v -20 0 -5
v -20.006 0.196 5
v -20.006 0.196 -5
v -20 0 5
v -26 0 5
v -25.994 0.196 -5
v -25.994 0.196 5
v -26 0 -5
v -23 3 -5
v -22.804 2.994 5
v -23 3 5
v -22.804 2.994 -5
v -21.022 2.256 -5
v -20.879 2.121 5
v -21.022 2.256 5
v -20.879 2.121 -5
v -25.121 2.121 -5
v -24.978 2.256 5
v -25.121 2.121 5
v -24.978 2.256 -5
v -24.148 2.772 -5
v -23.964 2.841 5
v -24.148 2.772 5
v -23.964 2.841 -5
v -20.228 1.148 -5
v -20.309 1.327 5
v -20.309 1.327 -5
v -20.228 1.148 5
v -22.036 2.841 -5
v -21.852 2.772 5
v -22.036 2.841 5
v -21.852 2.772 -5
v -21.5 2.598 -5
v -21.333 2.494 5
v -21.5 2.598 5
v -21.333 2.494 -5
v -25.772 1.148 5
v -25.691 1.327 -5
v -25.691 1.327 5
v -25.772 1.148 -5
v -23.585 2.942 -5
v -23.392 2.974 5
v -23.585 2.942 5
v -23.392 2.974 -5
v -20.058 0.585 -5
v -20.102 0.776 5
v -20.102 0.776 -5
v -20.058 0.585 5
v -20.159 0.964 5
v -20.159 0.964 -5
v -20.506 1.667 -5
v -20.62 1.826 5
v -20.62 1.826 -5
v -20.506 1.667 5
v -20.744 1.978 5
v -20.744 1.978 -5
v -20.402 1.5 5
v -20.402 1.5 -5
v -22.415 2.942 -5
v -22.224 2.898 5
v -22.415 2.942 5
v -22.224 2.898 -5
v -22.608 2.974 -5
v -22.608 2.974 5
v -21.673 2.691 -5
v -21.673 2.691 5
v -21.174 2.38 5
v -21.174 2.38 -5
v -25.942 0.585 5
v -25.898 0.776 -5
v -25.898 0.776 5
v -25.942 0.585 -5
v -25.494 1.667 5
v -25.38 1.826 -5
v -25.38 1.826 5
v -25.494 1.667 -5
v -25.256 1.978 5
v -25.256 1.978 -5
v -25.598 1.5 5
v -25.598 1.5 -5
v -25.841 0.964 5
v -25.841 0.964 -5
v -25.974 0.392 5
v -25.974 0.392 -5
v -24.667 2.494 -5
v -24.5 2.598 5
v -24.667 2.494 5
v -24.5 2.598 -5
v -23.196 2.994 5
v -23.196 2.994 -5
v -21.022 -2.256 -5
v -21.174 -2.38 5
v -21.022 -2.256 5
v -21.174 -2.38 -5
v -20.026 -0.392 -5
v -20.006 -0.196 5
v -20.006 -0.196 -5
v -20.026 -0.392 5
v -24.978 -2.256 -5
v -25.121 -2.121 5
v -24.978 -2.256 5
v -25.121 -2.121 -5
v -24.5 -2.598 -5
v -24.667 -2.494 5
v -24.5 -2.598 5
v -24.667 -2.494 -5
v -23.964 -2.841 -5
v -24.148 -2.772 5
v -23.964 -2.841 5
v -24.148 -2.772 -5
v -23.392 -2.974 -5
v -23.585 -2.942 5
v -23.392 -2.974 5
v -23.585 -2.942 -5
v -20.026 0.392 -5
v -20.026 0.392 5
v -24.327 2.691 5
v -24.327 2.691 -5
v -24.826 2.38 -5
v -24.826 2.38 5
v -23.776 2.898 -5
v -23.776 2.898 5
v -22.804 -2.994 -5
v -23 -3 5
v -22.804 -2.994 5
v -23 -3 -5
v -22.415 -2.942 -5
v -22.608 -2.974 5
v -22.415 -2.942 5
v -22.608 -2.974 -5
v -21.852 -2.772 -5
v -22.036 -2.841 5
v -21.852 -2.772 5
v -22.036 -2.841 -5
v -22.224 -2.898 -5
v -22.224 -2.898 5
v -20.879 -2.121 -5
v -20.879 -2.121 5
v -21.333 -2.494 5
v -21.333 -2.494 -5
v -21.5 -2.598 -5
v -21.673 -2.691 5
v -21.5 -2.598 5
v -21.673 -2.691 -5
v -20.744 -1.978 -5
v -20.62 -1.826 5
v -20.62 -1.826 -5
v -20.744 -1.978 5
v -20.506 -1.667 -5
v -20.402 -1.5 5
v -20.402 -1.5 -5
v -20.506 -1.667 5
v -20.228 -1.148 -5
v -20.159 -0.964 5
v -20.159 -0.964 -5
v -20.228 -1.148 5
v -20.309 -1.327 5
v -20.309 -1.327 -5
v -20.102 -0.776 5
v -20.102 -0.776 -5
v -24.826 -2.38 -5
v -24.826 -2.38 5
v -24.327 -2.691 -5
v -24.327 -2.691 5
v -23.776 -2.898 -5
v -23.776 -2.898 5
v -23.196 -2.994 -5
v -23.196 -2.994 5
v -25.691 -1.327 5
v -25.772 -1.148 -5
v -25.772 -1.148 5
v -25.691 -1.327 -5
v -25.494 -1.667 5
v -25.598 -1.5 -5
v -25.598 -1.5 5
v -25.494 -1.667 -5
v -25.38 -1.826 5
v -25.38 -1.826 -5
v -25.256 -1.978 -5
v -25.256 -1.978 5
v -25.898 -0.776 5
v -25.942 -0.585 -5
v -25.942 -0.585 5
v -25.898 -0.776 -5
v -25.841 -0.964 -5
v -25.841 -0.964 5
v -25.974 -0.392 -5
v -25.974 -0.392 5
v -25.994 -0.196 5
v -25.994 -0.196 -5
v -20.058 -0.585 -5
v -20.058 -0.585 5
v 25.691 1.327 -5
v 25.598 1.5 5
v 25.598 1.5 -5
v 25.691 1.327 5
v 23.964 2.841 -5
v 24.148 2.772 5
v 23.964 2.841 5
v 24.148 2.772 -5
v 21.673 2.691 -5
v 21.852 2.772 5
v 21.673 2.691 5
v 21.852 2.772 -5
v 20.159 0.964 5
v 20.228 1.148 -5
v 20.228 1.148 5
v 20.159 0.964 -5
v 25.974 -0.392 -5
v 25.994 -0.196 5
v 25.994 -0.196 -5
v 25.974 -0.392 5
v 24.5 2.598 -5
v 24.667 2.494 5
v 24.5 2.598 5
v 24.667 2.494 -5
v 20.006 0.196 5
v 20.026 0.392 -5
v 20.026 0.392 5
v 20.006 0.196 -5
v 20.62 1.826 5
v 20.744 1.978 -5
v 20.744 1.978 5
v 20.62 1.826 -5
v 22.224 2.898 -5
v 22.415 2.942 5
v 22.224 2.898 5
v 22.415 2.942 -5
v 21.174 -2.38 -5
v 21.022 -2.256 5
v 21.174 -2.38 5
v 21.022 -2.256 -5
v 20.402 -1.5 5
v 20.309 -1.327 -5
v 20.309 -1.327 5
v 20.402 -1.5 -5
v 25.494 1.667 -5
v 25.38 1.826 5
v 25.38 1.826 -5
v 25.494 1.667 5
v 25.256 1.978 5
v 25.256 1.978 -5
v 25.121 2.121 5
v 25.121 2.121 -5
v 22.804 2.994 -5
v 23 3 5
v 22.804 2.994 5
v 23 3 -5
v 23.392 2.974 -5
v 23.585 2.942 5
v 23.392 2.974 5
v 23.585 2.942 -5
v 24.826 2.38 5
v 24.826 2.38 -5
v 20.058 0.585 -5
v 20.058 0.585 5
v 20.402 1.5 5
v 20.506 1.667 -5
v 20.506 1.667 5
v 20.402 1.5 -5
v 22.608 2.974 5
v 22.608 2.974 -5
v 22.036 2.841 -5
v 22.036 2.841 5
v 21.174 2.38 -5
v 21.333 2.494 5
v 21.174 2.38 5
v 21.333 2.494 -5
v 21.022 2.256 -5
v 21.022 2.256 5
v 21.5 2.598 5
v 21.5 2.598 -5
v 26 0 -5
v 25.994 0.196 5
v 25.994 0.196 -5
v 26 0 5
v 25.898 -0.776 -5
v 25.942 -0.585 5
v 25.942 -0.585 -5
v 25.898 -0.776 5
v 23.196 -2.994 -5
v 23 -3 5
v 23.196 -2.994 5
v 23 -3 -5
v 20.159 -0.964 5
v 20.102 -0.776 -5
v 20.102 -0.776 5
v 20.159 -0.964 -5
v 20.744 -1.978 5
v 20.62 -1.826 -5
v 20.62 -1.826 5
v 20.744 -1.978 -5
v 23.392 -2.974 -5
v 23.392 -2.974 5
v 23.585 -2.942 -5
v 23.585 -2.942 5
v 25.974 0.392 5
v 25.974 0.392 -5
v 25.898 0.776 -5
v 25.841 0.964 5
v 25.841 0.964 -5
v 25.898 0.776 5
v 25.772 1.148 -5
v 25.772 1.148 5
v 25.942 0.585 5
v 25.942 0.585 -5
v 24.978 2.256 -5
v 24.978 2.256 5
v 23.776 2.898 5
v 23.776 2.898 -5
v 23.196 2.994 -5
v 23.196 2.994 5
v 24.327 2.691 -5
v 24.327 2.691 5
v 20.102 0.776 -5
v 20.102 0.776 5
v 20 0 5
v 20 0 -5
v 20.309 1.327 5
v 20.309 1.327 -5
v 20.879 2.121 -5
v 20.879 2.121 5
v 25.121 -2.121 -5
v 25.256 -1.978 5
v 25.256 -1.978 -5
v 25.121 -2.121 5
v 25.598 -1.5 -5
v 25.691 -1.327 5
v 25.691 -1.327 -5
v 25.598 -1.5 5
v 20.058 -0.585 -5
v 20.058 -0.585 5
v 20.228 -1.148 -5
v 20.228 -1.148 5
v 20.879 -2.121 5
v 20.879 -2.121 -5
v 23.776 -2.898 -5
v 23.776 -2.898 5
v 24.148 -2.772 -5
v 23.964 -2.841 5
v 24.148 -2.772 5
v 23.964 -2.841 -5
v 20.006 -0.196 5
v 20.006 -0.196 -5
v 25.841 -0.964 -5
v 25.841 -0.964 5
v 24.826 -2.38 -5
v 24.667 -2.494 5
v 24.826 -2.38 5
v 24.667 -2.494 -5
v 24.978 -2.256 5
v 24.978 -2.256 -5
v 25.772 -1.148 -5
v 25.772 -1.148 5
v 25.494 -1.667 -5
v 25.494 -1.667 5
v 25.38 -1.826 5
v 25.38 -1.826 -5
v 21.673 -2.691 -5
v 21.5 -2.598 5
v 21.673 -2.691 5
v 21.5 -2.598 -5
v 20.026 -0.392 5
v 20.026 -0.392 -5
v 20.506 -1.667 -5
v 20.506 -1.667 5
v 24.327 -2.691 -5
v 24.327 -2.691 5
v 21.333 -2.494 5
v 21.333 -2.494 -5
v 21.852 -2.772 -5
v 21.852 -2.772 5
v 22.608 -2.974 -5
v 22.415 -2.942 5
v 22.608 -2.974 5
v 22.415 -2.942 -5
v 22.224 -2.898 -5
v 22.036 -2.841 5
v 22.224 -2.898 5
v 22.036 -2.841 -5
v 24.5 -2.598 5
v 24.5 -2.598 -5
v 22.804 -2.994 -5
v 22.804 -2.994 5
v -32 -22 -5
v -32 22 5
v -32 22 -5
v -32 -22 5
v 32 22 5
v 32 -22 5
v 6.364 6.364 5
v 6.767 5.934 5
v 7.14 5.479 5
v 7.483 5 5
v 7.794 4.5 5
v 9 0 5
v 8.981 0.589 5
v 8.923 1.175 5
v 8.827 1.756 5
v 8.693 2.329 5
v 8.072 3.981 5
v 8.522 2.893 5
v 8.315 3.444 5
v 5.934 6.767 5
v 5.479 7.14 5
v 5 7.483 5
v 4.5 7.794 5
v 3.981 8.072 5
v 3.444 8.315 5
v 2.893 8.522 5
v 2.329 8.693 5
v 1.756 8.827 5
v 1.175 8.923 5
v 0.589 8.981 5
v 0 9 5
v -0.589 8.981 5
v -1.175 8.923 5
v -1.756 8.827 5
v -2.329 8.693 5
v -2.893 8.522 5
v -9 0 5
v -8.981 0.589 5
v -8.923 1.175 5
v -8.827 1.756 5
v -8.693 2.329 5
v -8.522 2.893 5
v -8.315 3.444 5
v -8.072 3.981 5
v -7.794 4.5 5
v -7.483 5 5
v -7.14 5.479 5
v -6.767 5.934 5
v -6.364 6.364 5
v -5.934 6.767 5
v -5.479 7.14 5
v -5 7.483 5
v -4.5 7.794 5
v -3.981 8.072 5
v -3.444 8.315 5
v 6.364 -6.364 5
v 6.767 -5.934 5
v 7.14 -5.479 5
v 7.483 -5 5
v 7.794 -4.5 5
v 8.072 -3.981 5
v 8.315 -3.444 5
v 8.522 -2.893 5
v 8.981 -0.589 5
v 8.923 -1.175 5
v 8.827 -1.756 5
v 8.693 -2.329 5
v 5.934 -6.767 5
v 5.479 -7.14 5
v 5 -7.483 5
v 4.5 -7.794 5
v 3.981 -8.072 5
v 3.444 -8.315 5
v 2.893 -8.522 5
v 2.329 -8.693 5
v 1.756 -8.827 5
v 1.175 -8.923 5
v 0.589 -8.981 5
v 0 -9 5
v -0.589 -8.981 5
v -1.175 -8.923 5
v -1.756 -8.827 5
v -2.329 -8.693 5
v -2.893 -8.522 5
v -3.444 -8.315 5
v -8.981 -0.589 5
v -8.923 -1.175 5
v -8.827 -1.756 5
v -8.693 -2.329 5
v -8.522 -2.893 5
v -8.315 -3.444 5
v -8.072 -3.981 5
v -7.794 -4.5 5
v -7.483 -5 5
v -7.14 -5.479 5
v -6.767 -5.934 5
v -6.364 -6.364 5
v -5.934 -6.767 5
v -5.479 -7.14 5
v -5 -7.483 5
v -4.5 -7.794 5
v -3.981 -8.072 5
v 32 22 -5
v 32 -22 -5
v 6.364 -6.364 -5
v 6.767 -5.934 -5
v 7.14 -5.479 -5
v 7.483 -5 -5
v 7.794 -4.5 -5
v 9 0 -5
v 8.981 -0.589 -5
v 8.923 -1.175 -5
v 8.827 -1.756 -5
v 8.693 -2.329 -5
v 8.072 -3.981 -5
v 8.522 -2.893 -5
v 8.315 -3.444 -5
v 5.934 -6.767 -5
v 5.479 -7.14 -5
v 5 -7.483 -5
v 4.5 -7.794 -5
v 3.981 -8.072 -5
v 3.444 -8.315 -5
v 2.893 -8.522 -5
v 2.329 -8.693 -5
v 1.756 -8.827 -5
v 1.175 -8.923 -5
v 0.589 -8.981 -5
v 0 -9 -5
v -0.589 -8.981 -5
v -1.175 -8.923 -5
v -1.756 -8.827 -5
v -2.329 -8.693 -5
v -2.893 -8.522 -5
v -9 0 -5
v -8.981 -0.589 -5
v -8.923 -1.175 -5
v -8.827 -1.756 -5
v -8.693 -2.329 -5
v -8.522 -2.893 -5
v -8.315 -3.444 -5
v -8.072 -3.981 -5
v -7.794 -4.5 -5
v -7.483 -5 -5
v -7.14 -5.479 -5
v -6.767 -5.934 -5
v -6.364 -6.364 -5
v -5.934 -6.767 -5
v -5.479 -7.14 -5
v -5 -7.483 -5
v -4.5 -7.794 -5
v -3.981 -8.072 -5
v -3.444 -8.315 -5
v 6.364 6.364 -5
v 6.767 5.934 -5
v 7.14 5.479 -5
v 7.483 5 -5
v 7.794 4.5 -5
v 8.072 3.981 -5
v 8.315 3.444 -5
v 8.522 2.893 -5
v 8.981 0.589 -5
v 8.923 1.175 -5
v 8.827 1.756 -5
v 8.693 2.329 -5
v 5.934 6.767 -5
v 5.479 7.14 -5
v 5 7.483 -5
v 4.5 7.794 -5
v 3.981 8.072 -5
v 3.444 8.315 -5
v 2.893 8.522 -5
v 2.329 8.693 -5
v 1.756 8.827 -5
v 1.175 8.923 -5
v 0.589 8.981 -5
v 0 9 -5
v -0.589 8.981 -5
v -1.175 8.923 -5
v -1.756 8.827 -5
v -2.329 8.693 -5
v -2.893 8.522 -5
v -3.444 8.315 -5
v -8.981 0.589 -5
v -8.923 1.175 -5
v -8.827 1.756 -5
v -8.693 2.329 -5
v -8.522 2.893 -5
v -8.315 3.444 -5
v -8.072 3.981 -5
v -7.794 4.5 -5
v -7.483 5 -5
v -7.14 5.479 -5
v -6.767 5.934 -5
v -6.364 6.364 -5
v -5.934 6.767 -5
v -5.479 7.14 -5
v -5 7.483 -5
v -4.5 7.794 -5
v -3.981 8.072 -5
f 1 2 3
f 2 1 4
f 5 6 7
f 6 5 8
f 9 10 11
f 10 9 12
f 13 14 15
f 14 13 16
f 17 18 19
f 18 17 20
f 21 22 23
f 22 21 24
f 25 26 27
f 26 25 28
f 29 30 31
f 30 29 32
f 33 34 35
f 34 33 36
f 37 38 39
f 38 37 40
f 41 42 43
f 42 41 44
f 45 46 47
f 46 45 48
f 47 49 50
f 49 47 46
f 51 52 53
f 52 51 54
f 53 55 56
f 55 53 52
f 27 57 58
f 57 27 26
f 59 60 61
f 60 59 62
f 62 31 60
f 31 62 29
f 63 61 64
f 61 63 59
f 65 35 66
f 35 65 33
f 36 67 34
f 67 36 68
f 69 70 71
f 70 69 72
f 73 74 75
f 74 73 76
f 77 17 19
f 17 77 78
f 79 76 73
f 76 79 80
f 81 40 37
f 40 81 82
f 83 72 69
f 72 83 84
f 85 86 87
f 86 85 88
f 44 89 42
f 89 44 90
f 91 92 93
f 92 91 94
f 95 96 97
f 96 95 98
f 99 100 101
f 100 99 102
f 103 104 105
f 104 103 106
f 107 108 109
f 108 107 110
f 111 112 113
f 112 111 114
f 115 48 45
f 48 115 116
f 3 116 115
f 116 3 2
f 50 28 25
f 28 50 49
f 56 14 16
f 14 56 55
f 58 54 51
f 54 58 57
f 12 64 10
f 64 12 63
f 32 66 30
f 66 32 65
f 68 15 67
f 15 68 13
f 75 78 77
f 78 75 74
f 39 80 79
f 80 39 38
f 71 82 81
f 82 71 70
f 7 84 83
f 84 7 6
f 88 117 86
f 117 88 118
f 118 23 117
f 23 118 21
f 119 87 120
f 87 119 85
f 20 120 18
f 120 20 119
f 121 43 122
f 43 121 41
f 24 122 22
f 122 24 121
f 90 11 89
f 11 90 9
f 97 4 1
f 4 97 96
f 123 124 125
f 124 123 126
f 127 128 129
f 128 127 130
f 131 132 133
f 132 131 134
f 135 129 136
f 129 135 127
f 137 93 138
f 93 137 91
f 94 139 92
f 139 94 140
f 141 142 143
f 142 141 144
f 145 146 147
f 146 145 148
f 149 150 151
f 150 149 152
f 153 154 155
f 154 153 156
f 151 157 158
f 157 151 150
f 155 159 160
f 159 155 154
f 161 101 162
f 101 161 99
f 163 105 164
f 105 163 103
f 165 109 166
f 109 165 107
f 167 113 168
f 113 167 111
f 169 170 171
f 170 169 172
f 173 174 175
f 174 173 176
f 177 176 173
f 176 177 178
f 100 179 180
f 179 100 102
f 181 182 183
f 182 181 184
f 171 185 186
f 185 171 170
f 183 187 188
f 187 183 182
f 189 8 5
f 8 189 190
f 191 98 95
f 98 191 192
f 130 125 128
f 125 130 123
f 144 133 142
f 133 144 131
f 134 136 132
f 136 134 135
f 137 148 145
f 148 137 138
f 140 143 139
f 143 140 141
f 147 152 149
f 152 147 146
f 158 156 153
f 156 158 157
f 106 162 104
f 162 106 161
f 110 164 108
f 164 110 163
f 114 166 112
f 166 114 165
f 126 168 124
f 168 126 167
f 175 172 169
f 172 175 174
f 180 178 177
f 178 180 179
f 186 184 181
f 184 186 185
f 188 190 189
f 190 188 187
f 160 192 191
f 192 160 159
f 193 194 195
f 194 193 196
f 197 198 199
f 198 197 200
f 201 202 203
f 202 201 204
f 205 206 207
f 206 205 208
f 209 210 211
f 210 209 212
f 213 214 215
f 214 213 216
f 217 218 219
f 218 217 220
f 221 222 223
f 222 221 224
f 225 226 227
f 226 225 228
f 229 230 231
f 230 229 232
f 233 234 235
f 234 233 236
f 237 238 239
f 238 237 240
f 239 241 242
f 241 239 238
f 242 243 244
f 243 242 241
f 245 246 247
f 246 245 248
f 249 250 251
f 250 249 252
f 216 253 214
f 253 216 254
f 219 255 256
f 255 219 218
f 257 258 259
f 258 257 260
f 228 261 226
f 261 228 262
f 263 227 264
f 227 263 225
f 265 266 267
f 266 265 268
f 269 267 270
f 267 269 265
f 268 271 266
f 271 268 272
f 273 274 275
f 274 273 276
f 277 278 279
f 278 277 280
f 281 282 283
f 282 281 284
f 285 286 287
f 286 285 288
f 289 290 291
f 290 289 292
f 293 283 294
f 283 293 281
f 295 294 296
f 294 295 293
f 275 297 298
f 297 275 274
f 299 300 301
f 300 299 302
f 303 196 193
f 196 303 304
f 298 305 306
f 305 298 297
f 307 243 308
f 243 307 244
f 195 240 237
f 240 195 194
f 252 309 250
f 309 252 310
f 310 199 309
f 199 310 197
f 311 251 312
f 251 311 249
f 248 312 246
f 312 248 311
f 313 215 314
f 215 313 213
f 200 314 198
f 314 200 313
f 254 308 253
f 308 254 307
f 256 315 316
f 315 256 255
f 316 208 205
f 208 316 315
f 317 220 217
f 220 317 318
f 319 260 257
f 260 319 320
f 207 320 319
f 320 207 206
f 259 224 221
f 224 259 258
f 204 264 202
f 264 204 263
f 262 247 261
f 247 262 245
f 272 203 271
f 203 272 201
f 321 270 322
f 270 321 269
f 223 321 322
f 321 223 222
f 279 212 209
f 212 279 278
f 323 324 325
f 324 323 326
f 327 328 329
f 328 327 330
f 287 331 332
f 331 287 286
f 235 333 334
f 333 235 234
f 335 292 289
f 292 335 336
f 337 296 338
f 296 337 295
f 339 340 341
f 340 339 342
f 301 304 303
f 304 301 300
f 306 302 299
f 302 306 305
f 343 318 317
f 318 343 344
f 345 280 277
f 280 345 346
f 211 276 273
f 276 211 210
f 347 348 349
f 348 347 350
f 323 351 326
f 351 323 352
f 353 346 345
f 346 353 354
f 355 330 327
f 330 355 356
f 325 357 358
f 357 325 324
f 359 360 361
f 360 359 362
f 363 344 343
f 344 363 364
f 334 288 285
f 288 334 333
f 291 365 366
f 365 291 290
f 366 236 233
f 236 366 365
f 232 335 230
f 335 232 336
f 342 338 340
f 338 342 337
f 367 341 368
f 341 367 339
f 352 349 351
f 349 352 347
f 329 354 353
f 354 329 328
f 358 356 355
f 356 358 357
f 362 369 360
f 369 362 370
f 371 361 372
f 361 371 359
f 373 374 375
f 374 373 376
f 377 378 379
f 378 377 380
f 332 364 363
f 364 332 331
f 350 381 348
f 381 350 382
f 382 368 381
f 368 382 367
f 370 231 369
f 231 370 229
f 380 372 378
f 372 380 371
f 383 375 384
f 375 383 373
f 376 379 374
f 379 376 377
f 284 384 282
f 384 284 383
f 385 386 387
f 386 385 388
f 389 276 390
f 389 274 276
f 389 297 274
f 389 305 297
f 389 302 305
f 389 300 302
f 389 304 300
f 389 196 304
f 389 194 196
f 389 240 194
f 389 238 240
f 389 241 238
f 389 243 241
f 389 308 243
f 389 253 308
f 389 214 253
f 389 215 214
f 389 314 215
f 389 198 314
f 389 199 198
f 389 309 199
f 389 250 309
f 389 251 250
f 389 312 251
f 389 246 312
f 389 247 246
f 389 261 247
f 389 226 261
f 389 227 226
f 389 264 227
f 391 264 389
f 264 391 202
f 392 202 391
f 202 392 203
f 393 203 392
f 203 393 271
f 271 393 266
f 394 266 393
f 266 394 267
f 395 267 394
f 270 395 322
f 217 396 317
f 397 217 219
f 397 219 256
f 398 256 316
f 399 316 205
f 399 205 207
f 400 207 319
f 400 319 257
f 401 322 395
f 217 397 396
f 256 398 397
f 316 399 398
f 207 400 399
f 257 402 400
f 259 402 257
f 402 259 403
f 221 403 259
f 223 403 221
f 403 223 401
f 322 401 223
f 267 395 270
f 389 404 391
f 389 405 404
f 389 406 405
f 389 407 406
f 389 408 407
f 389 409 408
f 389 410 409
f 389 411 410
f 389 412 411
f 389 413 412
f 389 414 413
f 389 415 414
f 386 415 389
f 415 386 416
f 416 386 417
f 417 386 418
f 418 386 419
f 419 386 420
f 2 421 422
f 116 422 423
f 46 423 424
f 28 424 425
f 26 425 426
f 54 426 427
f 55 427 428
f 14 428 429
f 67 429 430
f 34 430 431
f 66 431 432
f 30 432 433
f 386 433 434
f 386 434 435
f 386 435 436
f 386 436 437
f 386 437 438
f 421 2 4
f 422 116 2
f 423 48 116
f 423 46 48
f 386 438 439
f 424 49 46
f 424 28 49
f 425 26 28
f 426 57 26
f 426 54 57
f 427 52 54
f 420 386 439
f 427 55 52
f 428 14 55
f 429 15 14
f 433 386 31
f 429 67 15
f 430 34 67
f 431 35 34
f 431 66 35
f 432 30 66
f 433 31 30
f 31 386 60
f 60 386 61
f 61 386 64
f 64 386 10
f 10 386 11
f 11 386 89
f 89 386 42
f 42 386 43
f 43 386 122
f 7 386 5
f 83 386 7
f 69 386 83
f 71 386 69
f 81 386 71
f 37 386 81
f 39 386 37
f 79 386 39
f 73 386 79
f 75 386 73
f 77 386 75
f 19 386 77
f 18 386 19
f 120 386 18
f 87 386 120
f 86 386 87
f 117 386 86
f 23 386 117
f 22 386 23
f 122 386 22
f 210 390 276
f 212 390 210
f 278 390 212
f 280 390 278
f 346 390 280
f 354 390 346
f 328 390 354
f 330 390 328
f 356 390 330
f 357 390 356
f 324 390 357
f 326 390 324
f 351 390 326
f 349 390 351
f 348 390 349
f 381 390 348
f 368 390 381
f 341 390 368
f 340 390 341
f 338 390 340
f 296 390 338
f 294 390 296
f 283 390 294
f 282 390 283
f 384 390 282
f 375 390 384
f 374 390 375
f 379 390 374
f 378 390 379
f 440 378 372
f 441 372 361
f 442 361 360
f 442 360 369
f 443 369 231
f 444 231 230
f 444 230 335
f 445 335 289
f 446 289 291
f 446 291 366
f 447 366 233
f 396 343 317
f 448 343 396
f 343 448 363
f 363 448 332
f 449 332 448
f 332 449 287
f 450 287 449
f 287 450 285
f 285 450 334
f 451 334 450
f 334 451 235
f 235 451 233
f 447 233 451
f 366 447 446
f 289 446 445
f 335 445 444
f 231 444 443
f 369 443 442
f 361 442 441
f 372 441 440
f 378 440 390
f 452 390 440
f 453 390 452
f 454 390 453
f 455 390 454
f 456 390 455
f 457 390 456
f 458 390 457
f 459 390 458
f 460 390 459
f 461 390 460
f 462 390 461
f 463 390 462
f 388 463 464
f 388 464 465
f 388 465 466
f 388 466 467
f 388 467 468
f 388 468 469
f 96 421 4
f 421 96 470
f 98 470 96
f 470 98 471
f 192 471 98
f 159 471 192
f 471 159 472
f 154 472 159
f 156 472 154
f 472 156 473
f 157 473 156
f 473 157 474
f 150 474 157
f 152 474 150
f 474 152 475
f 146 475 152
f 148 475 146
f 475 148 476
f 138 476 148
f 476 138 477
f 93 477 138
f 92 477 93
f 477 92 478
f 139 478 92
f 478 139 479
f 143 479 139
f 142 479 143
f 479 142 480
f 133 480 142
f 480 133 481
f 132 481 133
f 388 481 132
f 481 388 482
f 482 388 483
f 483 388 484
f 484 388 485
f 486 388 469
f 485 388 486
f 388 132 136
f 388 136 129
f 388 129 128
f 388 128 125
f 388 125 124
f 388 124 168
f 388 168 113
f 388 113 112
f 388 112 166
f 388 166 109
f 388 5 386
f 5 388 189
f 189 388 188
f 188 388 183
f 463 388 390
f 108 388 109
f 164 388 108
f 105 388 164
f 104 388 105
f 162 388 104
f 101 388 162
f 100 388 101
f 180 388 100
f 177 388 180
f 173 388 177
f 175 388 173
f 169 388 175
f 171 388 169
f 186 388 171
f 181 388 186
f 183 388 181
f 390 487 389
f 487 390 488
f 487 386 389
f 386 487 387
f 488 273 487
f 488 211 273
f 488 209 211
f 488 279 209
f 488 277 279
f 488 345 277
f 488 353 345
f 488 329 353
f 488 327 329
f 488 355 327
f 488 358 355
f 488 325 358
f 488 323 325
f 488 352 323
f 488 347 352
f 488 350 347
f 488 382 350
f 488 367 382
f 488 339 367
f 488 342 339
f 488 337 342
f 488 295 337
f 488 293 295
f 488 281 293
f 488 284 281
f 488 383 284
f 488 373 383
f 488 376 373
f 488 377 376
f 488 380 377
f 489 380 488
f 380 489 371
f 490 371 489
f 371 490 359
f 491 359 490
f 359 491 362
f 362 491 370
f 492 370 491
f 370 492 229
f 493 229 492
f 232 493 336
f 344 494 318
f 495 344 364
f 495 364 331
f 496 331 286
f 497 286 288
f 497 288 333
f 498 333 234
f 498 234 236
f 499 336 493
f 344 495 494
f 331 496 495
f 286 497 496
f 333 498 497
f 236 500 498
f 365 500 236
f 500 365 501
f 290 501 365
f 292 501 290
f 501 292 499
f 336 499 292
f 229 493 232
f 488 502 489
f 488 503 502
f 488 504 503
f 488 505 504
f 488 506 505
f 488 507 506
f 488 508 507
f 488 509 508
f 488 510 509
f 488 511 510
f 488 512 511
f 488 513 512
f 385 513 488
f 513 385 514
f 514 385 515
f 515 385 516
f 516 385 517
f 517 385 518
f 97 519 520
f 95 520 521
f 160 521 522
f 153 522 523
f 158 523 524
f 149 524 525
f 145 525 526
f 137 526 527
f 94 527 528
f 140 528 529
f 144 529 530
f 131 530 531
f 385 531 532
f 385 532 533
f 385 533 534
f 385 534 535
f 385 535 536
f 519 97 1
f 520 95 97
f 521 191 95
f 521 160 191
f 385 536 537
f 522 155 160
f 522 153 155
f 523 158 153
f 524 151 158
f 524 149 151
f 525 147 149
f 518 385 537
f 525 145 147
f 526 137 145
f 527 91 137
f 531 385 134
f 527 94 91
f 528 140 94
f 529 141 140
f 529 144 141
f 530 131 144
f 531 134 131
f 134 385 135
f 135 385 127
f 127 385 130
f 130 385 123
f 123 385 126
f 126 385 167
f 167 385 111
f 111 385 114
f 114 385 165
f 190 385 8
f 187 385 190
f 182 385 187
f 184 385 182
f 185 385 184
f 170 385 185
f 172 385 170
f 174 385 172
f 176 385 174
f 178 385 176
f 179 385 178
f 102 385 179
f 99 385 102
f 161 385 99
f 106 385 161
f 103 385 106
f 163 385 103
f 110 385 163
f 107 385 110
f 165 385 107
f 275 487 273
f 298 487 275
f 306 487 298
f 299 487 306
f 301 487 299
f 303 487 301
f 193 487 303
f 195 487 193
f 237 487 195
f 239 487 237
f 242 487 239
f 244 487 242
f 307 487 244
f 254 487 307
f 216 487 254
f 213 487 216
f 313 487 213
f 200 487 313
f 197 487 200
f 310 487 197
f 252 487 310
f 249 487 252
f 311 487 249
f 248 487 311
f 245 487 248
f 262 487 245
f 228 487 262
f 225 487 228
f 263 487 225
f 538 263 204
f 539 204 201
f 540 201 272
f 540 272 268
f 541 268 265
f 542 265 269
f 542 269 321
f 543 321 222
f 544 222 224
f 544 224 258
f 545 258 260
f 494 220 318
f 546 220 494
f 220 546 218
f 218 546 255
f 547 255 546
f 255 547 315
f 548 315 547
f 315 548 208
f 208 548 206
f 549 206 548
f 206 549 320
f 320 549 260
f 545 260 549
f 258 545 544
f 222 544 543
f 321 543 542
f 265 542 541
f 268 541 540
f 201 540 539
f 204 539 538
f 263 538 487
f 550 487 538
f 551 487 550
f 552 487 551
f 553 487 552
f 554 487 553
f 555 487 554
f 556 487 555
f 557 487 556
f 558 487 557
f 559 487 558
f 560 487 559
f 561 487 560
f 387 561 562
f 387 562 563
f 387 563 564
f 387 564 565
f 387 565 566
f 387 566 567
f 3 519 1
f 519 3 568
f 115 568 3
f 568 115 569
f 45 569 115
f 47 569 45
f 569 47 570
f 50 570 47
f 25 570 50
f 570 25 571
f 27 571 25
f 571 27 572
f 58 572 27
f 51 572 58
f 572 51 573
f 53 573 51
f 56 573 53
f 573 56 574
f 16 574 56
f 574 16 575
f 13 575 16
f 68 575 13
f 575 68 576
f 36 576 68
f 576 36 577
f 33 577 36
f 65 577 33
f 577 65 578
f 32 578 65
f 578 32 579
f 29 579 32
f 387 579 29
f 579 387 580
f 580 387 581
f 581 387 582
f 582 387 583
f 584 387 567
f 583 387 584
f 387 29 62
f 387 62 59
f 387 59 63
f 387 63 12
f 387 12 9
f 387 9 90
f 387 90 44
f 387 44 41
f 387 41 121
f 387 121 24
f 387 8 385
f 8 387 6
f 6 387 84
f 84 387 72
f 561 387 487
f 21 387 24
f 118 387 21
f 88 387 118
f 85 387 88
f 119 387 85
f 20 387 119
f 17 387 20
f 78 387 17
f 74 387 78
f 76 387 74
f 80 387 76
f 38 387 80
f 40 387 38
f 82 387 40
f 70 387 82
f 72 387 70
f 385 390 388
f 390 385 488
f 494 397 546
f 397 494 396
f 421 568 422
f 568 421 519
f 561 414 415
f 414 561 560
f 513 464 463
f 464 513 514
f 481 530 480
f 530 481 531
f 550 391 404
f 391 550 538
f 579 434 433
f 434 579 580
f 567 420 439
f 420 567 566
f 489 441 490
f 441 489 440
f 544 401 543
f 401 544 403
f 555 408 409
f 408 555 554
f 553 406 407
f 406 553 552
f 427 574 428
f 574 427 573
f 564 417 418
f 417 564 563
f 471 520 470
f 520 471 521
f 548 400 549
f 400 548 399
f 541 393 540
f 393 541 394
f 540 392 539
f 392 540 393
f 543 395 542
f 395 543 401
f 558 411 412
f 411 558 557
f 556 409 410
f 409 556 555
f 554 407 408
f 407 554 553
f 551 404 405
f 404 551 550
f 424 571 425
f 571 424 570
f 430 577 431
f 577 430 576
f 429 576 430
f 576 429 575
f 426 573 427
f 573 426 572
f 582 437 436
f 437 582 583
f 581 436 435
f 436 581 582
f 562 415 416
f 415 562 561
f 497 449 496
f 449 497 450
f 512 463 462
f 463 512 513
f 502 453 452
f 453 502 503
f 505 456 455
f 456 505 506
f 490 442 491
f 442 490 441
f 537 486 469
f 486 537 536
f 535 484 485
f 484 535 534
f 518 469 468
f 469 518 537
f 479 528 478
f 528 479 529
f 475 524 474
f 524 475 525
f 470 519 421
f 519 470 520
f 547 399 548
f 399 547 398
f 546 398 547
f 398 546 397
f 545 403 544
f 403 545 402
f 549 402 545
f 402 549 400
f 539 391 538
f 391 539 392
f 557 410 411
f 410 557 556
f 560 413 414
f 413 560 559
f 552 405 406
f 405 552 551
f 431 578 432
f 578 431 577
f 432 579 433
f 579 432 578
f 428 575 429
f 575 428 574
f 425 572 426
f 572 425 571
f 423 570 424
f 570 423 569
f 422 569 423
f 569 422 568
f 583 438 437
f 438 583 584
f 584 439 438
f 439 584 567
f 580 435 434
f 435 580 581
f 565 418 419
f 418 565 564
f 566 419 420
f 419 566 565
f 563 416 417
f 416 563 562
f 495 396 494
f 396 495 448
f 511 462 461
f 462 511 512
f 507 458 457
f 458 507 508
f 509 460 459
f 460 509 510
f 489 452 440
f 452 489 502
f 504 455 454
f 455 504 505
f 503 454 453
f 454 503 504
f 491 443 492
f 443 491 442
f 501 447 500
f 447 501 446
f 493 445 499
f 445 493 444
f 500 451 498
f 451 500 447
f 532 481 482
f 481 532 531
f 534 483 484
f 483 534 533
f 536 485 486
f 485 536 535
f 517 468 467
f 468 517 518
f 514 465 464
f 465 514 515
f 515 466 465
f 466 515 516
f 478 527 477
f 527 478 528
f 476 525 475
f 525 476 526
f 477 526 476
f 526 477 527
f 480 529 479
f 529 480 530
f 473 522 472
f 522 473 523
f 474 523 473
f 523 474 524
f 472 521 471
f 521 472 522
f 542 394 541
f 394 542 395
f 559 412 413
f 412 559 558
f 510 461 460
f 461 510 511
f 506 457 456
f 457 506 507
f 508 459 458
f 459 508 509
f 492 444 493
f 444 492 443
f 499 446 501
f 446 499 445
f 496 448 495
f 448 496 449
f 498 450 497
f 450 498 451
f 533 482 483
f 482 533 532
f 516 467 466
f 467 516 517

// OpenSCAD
$fn = 96;

difference() {
  cube([64, 44, 10], center = true);
  cylinder(h = 12, d = 18, center = true);
  for (x = [-23, 23])
    translate([x, 0, 0])
      cylinder(h = 12, d = 6, center = true);
}
